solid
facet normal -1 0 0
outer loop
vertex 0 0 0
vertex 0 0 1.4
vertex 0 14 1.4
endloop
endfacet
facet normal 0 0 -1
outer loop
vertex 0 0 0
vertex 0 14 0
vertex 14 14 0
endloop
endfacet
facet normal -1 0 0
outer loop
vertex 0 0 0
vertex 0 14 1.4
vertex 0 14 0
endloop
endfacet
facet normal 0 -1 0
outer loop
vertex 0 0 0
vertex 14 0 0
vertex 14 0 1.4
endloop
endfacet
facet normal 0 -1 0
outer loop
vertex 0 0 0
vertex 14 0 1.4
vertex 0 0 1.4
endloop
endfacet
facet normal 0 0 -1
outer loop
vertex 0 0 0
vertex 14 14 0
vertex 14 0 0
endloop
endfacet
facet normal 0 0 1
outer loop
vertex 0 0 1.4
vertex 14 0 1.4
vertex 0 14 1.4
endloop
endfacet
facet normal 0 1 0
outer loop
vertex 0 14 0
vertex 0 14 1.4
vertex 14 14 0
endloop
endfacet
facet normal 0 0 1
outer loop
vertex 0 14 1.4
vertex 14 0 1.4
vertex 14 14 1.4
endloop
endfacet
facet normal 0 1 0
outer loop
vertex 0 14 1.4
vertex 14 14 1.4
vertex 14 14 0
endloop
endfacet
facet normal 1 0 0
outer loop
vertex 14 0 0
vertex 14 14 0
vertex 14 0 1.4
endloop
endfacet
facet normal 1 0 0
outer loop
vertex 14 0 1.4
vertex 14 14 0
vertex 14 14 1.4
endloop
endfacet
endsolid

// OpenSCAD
/* Warning, this is a very basic generator with a lot of approximation 
input data : [LQFP, 2LB, 14x14x1.4mm, 128, , A, C04-21006A]
generated by com.zoubworld.electronics.cad.model3d.Basic
Date : Sun Feb 15 10:50:49 CET 2026
*/

//body
color("black")
translate([0,0,0])
cube([14.0,14.0,1.4], center=false);
